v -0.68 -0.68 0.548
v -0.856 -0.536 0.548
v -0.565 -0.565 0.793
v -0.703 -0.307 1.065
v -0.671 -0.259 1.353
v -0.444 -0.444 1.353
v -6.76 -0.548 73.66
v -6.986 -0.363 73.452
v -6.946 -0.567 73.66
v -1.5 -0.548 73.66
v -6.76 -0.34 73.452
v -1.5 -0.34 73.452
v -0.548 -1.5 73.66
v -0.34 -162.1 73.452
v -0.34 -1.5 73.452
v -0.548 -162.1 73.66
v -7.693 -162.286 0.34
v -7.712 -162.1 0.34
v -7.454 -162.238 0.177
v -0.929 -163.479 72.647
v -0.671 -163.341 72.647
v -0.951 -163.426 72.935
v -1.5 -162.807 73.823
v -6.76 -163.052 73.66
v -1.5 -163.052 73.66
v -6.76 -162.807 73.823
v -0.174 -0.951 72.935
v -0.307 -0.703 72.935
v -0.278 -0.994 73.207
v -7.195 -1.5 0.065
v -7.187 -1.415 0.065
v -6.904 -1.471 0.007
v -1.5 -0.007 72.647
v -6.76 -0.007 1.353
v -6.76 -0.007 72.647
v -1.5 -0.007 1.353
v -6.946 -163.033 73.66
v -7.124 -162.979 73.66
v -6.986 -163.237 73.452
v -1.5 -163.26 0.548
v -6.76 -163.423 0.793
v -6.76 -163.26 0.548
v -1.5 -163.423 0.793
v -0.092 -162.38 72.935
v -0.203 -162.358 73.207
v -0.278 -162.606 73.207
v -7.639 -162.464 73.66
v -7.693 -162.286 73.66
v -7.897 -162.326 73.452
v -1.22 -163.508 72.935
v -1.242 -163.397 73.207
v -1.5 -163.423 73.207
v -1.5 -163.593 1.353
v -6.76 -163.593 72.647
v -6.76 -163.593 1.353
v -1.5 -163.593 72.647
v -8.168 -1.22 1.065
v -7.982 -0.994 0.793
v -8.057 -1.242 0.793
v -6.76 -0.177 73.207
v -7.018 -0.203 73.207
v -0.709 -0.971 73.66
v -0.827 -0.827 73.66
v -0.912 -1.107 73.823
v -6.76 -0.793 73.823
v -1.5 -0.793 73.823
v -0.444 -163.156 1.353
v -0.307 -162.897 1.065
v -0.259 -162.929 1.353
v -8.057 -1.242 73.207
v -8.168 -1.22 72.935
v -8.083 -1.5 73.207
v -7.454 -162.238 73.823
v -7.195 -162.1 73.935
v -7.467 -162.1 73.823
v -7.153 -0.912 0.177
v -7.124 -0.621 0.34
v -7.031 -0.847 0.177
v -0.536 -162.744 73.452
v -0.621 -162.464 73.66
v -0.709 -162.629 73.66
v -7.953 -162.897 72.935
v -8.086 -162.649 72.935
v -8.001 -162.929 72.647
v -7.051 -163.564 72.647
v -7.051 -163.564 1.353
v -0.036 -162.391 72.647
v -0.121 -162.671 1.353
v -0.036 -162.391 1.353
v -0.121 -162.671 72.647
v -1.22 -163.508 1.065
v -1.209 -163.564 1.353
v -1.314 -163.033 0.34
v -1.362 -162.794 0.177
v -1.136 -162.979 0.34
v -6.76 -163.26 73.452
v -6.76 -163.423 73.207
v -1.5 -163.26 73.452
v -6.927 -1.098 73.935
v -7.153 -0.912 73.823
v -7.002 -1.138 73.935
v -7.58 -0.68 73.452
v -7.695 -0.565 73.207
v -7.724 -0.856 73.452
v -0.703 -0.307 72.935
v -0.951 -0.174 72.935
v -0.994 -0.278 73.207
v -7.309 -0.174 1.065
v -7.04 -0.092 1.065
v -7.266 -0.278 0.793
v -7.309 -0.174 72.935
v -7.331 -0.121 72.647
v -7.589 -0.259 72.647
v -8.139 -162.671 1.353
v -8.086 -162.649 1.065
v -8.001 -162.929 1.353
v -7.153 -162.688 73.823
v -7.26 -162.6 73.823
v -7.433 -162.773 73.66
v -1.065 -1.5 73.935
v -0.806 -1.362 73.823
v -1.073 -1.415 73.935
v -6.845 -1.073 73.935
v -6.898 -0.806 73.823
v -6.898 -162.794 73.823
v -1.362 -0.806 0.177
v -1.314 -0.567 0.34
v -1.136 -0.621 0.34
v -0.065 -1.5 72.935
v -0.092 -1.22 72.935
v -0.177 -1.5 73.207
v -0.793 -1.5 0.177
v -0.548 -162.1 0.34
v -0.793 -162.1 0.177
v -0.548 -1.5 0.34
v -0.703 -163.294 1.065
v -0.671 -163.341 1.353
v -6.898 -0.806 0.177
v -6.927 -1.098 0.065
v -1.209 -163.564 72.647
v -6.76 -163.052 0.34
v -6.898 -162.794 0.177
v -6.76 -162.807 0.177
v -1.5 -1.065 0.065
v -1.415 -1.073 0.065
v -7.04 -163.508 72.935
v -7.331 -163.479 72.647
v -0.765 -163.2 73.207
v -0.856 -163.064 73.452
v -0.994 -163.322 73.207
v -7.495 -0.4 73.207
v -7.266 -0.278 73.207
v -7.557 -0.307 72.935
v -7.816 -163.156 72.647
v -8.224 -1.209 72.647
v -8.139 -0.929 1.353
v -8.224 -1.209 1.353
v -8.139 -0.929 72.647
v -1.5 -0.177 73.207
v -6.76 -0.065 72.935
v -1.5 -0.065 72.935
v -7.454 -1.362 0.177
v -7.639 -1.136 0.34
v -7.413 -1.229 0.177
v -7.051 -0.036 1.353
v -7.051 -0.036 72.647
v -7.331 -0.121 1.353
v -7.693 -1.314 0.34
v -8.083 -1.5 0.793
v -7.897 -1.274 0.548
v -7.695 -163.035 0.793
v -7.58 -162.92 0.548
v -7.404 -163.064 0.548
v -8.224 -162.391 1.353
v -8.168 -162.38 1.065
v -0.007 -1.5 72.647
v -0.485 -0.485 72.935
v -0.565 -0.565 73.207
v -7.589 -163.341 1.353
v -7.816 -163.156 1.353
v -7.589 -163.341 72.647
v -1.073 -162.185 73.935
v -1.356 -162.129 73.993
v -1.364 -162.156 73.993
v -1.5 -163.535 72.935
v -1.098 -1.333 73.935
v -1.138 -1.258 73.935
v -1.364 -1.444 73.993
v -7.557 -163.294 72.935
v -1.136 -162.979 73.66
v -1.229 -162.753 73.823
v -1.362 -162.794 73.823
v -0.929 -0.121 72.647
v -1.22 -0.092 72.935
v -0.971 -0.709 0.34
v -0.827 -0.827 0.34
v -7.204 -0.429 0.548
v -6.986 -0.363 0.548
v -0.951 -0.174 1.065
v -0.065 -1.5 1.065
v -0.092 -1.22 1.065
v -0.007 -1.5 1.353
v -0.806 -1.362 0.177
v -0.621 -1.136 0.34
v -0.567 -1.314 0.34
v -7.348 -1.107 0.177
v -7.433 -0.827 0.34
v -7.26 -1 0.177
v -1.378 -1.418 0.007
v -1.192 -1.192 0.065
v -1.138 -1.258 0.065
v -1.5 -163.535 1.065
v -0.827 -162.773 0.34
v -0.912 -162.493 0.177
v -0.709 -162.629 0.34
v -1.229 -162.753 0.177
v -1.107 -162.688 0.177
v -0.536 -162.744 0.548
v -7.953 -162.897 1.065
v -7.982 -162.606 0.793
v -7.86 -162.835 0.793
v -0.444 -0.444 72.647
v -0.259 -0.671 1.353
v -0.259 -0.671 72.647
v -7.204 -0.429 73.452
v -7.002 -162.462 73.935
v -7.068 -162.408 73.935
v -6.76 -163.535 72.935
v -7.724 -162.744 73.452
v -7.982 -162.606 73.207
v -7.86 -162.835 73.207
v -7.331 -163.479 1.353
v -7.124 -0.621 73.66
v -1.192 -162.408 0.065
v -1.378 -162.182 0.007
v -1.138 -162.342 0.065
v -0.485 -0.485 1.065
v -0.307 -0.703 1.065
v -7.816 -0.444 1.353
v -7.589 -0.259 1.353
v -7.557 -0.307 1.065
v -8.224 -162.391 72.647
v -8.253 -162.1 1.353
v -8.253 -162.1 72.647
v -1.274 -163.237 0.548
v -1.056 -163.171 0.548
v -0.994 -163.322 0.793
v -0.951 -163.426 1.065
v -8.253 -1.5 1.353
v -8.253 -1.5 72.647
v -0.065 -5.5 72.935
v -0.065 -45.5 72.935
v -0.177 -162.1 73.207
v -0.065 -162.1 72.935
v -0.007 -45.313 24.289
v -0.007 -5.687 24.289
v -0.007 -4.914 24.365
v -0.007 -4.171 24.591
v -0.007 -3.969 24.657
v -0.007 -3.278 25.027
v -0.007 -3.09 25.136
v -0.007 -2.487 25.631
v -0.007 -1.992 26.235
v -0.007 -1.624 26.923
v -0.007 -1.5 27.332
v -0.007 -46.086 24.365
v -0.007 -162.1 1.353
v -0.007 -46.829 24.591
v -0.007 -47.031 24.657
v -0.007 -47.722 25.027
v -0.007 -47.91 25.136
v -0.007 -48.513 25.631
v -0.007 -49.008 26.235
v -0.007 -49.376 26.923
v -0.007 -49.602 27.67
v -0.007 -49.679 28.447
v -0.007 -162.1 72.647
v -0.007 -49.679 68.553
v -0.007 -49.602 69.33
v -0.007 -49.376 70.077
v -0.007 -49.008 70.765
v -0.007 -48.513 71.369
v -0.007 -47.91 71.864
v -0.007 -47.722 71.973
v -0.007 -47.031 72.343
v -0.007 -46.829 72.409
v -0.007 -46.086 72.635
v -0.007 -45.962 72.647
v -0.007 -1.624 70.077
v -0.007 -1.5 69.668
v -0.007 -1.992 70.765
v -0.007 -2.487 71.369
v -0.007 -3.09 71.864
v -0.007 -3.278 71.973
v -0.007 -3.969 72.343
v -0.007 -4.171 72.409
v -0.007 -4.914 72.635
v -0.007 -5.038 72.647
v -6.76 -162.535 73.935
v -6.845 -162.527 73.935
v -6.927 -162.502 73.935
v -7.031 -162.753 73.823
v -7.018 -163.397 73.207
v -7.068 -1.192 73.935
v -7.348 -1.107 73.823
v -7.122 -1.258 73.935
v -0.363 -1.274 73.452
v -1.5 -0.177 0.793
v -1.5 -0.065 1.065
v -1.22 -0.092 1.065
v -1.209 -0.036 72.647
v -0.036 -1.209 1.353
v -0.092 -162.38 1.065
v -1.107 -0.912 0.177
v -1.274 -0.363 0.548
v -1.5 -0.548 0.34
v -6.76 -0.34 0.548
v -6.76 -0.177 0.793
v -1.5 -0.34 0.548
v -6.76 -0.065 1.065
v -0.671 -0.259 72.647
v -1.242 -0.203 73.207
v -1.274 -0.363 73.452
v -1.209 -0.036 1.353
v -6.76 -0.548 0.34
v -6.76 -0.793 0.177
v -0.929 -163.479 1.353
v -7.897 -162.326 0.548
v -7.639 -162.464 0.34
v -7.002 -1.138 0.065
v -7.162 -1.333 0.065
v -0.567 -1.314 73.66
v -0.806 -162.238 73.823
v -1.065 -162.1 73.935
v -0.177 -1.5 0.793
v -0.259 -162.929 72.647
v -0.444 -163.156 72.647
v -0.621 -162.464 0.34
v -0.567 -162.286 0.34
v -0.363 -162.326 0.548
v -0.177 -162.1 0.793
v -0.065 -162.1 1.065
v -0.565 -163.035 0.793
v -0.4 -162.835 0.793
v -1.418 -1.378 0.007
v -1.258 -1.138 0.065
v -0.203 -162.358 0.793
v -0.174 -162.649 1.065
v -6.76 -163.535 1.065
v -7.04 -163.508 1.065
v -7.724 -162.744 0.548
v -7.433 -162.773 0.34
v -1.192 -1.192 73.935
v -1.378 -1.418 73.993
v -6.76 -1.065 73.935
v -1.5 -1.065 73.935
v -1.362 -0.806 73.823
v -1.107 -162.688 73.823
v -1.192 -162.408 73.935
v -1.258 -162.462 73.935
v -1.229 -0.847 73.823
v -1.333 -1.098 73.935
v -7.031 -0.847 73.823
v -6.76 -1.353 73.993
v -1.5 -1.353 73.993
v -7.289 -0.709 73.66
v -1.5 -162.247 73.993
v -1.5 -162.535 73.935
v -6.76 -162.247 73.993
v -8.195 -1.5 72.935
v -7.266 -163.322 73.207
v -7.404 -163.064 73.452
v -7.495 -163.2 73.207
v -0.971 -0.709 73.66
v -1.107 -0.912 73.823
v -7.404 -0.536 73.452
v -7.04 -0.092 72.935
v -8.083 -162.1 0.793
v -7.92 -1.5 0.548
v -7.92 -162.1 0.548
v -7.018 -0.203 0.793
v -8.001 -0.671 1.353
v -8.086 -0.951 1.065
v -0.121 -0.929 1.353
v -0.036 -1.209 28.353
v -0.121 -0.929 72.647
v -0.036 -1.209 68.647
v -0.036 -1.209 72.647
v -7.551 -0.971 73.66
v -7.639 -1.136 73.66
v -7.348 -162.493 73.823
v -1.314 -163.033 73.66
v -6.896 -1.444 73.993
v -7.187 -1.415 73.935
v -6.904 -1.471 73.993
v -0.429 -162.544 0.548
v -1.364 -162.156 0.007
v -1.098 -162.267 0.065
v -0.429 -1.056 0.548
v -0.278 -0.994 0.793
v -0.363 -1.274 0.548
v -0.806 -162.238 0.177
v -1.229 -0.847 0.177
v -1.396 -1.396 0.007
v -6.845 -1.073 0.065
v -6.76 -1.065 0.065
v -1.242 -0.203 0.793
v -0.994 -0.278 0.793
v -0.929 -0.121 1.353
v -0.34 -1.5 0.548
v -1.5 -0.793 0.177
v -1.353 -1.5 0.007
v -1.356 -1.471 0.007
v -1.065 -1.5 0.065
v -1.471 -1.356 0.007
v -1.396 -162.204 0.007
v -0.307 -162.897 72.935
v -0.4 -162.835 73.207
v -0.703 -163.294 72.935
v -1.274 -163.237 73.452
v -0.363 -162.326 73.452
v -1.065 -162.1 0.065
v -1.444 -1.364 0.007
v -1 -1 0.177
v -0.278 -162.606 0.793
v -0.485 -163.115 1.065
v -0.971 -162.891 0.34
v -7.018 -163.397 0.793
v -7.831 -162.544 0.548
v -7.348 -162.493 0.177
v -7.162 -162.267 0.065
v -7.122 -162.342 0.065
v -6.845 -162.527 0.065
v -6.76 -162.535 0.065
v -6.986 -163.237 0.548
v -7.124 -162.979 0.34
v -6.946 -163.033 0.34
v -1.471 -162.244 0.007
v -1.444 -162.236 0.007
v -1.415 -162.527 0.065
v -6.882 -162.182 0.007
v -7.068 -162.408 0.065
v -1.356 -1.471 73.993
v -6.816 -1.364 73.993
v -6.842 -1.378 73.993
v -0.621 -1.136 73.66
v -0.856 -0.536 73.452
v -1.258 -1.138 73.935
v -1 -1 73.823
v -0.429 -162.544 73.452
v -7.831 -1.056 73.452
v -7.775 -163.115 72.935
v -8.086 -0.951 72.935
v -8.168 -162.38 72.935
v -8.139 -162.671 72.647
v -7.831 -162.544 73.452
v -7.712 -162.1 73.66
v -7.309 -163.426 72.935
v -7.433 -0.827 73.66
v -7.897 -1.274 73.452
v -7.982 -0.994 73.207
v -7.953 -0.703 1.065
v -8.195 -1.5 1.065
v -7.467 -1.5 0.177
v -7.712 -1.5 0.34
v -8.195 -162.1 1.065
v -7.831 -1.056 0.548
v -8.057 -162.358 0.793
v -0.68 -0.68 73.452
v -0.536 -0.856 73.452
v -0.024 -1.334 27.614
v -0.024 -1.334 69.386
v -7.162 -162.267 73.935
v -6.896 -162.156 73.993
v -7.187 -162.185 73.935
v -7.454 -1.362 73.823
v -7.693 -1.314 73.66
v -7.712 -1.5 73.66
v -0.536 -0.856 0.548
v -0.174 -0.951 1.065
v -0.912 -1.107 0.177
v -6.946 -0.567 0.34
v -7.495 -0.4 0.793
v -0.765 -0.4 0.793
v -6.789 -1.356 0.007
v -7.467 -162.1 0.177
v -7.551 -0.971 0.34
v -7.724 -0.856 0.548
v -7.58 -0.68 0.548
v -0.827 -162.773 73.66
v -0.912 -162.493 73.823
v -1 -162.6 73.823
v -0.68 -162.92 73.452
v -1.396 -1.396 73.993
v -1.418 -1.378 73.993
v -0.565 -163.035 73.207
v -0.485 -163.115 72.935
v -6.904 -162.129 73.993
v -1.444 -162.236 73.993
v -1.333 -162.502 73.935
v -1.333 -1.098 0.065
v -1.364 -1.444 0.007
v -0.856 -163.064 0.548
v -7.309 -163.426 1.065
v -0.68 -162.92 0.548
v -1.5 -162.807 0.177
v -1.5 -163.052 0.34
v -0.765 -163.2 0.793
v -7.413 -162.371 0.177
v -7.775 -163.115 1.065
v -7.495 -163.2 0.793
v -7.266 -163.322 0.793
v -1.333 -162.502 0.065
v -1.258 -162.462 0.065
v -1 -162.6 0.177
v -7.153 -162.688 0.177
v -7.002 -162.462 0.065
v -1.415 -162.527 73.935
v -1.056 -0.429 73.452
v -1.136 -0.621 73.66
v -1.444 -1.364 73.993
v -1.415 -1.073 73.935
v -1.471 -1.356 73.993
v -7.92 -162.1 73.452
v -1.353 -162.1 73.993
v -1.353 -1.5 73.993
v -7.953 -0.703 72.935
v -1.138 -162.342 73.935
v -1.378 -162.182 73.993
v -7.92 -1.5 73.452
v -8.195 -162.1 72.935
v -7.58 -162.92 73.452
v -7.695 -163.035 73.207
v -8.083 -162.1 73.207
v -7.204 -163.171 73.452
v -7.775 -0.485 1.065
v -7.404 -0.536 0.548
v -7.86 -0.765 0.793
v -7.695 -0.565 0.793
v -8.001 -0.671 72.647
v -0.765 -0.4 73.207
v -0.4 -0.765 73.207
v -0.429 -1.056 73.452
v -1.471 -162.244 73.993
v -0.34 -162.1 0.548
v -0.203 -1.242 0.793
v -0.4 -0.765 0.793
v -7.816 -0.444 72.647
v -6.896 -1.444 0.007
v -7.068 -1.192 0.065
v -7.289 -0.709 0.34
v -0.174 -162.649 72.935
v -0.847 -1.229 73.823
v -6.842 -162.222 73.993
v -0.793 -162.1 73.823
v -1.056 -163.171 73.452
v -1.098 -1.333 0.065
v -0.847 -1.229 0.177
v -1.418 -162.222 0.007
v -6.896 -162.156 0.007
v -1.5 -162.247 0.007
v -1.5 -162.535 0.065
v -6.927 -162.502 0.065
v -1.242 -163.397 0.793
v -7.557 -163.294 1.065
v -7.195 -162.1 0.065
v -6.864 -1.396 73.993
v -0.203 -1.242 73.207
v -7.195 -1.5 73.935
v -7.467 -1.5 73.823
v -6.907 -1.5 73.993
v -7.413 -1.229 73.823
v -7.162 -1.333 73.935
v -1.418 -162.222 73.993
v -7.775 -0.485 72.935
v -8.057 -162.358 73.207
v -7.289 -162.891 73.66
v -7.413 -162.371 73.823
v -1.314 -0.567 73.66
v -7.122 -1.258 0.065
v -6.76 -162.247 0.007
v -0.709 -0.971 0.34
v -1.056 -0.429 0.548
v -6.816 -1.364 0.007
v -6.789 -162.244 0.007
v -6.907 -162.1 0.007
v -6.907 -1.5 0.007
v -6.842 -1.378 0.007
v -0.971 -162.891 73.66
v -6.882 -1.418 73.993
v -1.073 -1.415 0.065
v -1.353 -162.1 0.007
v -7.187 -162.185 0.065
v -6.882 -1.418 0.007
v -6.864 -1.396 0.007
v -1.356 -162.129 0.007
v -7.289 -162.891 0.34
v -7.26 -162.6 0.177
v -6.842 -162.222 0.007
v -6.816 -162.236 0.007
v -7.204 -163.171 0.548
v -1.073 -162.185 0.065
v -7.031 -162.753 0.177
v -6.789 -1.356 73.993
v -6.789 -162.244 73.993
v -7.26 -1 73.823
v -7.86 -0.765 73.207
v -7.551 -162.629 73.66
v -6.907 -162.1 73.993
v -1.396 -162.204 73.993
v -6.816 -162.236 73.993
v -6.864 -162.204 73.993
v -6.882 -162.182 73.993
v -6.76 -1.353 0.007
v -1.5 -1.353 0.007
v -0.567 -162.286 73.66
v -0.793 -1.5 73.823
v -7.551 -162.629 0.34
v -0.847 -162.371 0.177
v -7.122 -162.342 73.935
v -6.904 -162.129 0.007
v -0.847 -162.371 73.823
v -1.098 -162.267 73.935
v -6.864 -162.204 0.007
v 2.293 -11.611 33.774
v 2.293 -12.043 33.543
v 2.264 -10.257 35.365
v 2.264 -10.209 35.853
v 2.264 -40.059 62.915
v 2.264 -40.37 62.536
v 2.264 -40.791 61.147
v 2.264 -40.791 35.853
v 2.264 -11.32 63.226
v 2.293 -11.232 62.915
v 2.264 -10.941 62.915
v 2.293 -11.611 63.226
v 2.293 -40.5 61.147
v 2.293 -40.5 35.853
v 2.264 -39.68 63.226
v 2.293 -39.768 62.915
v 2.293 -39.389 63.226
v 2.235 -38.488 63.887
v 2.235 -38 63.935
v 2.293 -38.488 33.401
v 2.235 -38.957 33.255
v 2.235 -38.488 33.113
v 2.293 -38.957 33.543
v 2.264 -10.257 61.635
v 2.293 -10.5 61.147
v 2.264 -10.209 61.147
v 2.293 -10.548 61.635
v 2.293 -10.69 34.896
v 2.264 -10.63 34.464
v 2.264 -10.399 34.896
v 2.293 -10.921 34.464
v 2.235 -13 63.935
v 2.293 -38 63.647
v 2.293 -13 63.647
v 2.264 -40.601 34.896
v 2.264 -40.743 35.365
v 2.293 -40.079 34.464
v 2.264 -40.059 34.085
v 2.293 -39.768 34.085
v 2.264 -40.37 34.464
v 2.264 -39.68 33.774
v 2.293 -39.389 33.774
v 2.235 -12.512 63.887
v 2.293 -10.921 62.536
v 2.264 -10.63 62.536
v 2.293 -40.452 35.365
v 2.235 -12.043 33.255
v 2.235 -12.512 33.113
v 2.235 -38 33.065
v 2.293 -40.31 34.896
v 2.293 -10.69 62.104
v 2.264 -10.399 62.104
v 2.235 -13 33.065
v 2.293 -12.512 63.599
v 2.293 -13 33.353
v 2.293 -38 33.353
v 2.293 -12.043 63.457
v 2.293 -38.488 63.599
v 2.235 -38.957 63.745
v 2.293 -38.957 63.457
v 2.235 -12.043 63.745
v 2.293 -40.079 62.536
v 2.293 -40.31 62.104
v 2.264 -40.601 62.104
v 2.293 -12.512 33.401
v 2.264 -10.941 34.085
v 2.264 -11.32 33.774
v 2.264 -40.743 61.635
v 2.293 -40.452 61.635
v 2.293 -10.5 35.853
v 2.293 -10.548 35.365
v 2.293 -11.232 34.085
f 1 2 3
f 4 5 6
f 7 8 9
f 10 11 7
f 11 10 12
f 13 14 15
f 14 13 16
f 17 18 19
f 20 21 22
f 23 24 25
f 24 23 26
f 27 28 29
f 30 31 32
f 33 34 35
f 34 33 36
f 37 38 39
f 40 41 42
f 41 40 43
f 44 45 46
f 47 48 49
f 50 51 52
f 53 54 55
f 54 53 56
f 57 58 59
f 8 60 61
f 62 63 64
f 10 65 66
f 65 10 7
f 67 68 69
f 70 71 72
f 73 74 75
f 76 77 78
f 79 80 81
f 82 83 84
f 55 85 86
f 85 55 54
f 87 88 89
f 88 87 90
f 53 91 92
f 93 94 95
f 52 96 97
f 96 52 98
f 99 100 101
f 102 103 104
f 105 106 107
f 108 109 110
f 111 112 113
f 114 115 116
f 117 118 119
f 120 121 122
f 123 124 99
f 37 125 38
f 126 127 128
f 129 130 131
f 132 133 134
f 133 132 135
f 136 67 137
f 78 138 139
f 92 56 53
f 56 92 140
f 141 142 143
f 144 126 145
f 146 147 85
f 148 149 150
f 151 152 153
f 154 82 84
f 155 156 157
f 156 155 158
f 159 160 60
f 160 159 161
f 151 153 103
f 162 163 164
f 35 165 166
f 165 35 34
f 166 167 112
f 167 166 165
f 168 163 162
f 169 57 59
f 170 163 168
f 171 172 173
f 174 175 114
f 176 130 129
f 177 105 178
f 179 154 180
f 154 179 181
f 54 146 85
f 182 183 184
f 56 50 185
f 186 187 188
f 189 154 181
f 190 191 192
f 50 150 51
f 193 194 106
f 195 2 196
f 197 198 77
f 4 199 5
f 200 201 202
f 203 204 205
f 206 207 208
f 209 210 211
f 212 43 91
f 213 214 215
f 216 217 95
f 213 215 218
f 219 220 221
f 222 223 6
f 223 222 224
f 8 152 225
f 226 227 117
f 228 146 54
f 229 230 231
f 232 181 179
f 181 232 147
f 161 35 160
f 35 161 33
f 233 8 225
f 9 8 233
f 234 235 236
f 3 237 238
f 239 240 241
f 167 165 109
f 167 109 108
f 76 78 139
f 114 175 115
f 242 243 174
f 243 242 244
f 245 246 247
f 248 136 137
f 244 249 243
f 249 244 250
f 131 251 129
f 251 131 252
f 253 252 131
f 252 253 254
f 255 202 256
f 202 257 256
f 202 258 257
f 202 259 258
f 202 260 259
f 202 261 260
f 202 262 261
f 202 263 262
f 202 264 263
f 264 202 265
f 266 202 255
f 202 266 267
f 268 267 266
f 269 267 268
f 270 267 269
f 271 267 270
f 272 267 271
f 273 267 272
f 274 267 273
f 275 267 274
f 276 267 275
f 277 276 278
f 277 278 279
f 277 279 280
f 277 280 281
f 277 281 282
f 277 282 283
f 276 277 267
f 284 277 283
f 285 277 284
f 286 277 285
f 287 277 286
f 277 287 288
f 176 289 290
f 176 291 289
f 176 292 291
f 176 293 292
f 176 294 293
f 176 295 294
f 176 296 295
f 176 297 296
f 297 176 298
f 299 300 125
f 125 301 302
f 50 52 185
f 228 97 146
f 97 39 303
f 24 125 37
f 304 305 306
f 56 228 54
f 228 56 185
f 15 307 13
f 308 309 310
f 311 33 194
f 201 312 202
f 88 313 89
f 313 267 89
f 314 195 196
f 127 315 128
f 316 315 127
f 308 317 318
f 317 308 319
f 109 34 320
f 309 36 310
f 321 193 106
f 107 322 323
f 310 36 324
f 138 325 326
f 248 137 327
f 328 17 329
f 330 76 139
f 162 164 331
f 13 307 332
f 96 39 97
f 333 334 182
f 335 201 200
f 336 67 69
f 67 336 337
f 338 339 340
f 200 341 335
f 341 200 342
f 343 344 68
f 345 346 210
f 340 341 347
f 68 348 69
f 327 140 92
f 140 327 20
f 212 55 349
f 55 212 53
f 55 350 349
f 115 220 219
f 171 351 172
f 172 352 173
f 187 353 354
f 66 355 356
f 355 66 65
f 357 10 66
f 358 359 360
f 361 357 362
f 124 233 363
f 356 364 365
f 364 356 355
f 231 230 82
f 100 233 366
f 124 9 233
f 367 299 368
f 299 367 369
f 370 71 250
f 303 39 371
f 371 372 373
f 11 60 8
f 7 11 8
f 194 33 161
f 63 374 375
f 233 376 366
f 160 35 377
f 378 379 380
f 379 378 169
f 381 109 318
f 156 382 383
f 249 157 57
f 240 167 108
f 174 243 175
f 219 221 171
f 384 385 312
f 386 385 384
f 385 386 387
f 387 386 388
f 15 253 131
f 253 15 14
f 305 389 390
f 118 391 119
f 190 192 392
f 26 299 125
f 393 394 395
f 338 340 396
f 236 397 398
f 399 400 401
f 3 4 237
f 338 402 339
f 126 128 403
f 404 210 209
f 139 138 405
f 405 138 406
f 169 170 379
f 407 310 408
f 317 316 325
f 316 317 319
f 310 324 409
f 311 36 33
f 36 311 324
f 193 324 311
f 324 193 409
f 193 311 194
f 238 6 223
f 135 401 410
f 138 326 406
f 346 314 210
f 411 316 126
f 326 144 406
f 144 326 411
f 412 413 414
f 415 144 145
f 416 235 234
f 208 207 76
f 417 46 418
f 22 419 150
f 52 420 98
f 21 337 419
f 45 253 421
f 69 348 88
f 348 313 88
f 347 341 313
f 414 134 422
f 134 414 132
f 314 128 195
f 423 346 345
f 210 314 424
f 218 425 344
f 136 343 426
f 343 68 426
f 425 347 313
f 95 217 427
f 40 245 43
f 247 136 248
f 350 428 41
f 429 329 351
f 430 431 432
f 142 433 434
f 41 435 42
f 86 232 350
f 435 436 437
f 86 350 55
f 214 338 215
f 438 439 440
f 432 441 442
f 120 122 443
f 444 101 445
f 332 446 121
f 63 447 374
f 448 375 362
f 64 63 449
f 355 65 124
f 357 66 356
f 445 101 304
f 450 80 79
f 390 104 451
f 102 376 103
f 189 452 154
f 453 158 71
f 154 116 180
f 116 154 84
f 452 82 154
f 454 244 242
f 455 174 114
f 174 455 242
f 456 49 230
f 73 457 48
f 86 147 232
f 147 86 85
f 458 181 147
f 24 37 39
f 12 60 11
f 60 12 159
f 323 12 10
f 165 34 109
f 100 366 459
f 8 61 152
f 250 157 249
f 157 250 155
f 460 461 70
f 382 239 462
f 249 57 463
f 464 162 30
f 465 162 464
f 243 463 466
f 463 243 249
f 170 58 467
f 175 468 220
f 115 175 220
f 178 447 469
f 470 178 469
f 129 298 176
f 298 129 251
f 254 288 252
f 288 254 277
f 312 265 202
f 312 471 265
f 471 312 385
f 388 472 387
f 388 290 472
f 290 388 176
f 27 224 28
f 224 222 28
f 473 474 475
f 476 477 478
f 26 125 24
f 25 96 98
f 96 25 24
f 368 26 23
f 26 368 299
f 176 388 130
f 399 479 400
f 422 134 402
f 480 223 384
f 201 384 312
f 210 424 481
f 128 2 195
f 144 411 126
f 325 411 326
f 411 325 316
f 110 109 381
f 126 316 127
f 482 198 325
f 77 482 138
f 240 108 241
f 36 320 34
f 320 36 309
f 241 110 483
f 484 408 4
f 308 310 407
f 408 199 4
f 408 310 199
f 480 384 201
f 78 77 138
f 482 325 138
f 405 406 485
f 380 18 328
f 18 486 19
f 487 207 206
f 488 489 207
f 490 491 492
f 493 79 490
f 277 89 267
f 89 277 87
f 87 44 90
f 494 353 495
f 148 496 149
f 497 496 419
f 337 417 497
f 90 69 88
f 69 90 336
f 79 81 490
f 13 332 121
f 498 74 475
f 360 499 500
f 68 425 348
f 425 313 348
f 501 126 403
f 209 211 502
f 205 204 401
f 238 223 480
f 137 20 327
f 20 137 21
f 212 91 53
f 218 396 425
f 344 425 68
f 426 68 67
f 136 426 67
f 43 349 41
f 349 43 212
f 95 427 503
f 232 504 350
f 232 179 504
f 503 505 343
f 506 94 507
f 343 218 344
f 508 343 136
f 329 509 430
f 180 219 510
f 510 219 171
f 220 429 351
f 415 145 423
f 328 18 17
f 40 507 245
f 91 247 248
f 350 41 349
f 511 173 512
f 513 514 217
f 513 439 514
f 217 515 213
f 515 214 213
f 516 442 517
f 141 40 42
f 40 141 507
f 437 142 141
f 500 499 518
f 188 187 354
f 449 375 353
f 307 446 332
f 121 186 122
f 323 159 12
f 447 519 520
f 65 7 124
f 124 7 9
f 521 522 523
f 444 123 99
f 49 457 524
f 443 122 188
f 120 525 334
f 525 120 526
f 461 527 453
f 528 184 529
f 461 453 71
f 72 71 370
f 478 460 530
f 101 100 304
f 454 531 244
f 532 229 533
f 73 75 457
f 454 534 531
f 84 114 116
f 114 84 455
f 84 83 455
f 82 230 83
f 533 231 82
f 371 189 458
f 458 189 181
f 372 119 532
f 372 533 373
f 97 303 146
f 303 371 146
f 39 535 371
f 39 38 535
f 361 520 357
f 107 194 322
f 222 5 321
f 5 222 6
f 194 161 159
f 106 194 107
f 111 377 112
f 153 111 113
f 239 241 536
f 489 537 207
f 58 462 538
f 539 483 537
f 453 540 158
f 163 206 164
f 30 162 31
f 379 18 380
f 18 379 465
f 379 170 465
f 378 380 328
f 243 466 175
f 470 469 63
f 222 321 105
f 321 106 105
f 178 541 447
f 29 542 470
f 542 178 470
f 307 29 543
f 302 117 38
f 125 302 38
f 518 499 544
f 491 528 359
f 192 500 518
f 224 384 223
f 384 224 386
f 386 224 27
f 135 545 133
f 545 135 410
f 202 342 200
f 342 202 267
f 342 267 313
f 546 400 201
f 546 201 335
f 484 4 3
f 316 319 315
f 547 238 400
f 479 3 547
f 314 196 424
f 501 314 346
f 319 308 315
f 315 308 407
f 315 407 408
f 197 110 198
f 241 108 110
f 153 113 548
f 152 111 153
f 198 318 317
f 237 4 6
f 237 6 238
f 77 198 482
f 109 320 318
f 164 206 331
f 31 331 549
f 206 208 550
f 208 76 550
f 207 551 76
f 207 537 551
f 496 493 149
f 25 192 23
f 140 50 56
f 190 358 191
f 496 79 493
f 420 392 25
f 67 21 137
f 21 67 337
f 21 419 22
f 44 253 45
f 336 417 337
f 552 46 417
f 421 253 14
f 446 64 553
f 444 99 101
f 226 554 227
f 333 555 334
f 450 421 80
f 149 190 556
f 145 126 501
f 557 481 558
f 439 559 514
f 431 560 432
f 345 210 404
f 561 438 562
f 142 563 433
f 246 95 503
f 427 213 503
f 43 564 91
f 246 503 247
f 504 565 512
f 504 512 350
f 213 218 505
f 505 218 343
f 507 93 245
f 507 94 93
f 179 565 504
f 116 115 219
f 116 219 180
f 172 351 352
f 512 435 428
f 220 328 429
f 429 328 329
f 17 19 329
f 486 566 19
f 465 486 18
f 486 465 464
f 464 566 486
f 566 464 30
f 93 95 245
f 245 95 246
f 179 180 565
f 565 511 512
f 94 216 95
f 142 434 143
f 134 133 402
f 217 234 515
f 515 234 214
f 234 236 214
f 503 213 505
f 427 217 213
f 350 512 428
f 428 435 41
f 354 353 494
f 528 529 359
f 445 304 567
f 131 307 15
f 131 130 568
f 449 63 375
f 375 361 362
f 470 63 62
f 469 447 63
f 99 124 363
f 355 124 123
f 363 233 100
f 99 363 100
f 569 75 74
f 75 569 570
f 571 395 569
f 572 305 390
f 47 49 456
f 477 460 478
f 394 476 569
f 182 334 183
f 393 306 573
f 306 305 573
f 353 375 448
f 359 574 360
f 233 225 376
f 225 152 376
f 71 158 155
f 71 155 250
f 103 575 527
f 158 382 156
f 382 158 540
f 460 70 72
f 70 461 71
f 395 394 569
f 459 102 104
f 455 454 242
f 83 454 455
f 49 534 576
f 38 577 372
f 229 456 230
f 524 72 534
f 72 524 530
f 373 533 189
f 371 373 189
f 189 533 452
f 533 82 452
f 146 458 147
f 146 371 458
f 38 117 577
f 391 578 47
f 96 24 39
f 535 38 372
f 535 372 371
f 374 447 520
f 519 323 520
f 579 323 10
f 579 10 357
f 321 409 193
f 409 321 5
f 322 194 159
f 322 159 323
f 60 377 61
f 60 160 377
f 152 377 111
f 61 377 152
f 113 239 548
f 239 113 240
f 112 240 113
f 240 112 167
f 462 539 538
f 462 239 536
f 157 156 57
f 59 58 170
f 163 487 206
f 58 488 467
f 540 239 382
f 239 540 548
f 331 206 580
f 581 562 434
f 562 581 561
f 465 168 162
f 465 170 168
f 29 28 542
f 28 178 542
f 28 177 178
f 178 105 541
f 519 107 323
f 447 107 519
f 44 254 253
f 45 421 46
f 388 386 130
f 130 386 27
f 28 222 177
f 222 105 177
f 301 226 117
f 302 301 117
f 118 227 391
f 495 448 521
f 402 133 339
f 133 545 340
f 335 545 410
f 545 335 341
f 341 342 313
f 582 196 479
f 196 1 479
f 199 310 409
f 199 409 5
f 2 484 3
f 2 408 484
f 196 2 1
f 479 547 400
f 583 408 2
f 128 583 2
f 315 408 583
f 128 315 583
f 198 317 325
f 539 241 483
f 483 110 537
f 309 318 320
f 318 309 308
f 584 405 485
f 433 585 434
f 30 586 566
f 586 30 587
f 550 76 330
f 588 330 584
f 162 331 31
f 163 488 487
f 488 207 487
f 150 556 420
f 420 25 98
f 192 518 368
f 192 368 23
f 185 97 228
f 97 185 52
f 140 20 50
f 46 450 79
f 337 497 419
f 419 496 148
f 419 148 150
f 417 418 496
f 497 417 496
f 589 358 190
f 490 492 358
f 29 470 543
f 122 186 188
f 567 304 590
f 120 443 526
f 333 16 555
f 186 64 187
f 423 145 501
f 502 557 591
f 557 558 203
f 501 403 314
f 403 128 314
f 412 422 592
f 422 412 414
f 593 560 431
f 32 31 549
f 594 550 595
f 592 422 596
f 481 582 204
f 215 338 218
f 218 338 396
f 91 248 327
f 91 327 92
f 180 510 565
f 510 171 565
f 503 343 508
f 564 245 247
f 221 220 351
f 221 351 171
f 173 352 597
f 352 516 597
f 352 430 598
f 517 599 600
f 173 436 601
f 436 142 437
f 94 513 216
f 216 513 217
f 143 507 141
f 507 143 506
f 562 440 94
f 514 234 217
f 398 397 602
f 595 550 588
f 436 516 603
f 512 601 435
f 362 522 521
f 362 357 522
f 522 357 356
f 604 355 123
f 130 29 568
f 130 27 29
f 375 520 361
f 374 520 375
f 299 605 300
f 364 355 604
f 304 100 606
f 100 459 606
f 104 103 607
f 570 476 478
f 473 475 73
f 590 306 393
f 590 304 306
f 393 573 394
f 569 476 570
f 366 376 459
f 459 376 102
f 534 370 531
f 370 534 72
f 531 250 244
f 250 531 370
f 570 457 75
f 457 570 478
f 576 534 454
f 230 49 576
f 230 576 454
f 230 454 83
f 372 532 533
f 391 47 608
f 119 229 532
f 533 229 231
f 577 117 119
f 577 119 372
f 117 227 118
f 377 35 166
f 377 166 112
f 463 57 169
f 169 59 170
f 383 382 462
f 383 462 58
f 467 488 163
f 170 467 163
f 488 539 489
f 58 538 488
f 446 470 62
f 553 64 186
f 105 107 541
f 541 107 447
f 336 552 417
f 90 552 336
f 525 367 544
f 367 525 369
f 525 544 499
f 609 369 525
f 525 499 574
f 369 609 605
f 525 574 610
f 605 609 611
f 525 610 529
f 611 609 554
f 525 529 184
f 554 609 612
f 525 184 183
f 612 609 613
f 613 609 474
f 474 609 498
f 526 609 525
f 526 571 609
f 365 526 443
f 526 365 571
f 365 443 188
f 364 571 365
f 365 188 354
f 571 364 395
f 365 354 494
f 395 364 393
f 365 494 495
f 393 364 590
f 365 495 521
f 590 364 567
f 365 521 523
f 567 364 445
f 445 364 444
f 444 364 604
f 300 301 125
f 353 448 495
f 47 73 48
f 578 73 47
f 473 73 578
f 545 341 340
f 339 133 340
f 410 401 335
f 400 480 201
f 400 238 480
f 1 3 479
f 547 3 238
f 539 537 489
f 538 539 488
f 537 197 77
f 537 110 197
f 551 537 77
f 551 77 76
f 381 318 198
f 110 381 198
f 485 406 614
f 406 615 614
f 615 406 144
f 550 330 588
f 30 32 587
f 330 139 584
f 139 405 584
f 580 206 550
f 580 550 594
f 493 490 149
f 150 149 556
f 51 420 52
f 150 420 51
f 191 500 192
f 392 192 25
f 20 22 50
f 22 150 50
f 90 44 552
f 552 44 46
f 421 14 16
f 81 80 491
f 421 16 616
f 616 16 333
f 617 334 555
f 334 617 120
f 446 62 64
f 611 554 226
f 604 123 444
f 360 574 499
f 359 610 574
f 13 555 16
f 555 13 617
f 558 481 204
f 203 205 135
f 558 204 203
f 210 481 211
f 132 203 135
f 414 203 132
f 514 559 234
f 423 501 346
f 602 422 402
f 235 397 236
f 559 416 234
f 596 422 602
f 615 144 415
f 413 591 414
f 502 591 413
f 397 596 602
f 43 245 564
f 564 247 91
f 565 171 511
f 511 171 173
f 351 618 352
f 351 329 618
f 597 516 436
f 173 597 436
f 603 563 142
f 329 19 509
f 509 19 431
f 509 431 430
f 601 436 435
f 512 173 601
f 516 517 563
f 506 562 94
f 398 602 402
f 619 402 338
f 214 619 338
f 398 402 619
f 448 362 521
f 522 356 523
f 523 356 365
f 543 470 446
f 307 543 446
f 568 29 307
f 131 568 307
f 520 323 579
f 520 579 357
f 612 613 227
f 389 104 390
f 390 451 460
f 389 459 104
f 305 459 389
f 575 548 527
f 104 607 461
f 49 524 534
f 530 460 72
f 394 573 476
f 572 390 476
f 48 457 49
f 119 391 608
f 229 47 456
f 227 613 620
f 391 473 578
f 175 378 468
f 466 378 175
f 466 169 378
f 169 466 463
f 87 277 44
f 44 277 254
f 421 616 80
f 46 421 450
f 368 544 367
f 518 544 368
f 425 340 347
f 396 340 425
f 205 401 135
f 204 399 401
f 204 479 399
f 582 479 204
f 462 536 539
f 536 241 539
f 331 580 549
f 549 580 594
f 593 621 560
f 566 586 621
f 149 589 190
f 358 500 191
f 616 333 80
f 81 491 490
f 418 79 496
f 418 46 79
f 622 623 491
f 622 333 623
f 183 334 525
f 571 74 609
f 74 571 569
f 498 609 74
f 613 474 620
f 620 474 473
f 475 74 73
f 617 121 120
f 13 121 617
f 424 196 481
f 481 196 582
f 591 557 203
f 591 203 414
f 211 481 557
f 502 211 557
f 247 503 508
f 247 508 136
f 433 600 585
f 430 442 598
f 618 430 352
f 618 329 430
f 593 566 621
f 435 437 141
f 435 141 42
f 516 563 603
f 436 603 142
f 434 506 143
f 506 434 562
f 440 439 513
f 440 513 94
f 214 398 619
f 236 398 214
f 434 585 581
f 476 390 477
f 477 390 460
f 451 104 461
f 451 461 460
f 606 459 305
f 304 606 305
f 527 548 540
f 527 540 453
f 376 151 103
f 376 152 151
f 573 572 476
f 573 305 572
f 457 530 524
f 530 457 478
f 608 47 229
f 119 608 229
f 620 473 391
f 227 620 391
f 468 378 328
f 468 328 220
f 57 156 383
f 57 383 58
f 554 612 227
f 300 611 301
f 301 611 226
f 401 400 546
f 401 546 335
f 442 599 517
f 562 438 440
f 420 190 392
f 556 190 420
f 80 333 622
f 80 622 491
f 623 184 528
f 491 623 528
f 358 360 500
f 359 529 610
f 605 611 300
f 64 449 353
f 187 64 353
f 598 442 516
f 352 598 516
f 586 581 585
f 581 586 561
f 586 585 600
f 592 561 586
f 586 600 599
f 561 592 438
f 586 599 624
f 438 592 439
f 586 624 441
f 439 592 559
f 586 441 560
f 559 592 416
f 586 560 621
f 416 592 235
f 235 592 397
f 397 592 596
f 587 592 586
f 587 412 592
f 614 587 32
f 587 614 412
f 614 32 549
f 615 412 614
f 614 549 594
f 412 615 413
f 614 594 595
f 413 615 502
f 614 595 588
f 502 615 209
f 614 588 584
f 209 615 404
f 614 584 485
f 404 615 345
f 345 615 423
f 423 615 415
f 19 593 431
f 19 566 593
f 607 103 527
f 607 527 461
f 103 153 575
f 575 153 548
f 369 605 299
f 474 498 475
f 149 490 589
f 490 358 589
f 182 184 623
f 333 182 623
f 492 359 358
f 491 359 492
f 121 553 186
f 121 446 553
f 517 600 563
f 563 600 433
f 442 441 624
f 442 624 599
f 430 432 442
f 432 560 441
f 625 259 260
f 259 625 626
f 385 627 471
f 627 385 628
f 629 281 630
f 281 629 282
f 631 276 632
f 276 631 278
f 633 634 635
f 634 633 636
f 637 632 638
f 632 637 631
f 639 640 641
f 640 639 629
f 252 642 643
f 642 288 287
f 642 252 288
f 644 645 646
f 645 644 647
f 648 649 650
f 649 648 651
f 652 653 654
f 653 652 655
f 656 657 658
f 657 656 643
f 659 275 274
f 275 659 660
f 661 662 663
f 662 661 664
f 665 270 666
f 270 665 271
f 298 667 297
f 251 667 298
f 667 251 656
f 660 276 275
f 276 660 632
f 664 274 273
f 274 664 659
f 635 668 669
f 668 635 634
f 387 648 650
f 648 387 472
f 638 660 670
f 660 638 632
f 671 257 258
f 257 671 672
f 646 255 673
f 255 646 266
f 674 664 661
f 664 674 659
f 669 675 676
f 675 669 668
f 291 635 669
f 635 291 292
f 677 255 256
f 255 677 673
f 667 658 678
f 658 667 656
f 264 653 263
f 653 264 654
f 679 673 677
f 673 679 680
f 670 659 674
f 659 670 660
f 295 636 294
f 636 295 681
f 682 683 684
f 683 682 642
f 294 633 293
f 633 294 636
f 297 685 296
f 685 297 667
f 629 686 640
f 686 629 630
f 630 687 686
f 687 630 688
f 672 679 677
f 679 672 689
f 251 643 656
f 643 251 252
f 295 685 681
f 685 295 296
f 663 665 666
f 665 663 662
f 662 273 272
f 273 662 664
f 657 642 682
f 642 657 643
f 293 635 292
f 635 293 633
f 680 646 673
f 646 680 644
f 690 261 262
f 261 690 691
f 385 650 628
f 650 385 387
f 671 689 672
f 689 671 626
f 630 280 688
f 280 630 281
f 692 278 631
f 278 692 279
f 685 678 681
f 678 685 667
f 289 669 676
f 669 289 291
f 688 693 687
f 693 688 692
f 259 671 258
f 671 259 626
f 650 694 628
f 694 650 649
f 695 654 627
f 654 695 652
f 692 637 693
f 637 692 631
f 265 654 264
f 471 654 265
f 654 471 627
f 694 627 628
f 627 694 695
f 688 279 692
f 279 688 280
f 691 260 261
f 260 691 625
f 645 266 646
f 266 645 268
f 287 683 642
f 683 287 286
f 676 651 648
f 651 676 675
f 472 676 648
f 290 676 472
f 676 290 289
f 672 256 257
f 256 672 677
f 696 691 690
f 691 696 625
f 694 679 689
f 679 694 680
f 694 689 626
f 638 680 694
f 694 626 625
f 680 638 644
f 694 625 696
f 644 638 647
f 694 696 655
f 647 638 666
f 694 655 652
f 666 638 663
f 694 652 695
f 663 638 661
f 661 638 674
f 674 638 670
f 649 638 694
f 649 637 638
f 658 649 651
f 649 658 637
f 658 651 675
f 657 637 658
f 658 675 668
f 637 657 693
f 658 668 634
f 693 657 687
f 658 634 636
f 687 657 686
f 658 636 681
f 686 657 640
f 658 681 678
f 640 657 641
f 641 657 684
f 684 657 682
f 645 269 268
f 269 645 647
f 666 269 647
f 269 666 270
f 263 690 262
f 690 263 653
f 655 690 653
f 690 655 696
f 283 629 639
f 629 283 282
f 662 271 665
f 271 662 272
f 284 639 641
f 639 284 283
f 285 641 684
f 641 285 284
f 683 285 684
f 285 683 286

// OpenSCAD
body_dimensions = [163.6, 8.26, 74.0];
body_curve_radius = 1.5;
body_curve_diameter = 2 * body_curve_radius;
bezel_start_size = 40;
bezel_end_size = 25;
bezel_curve_radius = 4;
bezel_height = 2.3;


$fn=32;

translate([0, 0, body_dimensions.z])
rotate([0, 180, 90])
translate([body_curve_radius, body_curve_radius, body_curve_radius]) {
    minkowski() {
        union() {
            translate([
                bezel_start_size / 2 + bezel_curve_radius,
                0,
                bezel_start_size / 2 + bezel_curve_radius
            ]) {
                rotate([90, 0, 0]) {
                    linear_extrude(
                        height=bezel_height,
                        scale=(bezel_end_size/bezel_start_size)
                    ) {
                        offset(r=bezel_curve_radius) {
                            square(bezel_start_size, center=true);
                        }
                    }
                }
            }
            cube([
                body_dimensions.x - body_curve_diameter,
                body_dimensions.y - body_curve_diameter,
                body_dimensions.z - body_curve_diameter
            ]);                
         }
         sphere(d=body_curve_diameter);
     }
 }
